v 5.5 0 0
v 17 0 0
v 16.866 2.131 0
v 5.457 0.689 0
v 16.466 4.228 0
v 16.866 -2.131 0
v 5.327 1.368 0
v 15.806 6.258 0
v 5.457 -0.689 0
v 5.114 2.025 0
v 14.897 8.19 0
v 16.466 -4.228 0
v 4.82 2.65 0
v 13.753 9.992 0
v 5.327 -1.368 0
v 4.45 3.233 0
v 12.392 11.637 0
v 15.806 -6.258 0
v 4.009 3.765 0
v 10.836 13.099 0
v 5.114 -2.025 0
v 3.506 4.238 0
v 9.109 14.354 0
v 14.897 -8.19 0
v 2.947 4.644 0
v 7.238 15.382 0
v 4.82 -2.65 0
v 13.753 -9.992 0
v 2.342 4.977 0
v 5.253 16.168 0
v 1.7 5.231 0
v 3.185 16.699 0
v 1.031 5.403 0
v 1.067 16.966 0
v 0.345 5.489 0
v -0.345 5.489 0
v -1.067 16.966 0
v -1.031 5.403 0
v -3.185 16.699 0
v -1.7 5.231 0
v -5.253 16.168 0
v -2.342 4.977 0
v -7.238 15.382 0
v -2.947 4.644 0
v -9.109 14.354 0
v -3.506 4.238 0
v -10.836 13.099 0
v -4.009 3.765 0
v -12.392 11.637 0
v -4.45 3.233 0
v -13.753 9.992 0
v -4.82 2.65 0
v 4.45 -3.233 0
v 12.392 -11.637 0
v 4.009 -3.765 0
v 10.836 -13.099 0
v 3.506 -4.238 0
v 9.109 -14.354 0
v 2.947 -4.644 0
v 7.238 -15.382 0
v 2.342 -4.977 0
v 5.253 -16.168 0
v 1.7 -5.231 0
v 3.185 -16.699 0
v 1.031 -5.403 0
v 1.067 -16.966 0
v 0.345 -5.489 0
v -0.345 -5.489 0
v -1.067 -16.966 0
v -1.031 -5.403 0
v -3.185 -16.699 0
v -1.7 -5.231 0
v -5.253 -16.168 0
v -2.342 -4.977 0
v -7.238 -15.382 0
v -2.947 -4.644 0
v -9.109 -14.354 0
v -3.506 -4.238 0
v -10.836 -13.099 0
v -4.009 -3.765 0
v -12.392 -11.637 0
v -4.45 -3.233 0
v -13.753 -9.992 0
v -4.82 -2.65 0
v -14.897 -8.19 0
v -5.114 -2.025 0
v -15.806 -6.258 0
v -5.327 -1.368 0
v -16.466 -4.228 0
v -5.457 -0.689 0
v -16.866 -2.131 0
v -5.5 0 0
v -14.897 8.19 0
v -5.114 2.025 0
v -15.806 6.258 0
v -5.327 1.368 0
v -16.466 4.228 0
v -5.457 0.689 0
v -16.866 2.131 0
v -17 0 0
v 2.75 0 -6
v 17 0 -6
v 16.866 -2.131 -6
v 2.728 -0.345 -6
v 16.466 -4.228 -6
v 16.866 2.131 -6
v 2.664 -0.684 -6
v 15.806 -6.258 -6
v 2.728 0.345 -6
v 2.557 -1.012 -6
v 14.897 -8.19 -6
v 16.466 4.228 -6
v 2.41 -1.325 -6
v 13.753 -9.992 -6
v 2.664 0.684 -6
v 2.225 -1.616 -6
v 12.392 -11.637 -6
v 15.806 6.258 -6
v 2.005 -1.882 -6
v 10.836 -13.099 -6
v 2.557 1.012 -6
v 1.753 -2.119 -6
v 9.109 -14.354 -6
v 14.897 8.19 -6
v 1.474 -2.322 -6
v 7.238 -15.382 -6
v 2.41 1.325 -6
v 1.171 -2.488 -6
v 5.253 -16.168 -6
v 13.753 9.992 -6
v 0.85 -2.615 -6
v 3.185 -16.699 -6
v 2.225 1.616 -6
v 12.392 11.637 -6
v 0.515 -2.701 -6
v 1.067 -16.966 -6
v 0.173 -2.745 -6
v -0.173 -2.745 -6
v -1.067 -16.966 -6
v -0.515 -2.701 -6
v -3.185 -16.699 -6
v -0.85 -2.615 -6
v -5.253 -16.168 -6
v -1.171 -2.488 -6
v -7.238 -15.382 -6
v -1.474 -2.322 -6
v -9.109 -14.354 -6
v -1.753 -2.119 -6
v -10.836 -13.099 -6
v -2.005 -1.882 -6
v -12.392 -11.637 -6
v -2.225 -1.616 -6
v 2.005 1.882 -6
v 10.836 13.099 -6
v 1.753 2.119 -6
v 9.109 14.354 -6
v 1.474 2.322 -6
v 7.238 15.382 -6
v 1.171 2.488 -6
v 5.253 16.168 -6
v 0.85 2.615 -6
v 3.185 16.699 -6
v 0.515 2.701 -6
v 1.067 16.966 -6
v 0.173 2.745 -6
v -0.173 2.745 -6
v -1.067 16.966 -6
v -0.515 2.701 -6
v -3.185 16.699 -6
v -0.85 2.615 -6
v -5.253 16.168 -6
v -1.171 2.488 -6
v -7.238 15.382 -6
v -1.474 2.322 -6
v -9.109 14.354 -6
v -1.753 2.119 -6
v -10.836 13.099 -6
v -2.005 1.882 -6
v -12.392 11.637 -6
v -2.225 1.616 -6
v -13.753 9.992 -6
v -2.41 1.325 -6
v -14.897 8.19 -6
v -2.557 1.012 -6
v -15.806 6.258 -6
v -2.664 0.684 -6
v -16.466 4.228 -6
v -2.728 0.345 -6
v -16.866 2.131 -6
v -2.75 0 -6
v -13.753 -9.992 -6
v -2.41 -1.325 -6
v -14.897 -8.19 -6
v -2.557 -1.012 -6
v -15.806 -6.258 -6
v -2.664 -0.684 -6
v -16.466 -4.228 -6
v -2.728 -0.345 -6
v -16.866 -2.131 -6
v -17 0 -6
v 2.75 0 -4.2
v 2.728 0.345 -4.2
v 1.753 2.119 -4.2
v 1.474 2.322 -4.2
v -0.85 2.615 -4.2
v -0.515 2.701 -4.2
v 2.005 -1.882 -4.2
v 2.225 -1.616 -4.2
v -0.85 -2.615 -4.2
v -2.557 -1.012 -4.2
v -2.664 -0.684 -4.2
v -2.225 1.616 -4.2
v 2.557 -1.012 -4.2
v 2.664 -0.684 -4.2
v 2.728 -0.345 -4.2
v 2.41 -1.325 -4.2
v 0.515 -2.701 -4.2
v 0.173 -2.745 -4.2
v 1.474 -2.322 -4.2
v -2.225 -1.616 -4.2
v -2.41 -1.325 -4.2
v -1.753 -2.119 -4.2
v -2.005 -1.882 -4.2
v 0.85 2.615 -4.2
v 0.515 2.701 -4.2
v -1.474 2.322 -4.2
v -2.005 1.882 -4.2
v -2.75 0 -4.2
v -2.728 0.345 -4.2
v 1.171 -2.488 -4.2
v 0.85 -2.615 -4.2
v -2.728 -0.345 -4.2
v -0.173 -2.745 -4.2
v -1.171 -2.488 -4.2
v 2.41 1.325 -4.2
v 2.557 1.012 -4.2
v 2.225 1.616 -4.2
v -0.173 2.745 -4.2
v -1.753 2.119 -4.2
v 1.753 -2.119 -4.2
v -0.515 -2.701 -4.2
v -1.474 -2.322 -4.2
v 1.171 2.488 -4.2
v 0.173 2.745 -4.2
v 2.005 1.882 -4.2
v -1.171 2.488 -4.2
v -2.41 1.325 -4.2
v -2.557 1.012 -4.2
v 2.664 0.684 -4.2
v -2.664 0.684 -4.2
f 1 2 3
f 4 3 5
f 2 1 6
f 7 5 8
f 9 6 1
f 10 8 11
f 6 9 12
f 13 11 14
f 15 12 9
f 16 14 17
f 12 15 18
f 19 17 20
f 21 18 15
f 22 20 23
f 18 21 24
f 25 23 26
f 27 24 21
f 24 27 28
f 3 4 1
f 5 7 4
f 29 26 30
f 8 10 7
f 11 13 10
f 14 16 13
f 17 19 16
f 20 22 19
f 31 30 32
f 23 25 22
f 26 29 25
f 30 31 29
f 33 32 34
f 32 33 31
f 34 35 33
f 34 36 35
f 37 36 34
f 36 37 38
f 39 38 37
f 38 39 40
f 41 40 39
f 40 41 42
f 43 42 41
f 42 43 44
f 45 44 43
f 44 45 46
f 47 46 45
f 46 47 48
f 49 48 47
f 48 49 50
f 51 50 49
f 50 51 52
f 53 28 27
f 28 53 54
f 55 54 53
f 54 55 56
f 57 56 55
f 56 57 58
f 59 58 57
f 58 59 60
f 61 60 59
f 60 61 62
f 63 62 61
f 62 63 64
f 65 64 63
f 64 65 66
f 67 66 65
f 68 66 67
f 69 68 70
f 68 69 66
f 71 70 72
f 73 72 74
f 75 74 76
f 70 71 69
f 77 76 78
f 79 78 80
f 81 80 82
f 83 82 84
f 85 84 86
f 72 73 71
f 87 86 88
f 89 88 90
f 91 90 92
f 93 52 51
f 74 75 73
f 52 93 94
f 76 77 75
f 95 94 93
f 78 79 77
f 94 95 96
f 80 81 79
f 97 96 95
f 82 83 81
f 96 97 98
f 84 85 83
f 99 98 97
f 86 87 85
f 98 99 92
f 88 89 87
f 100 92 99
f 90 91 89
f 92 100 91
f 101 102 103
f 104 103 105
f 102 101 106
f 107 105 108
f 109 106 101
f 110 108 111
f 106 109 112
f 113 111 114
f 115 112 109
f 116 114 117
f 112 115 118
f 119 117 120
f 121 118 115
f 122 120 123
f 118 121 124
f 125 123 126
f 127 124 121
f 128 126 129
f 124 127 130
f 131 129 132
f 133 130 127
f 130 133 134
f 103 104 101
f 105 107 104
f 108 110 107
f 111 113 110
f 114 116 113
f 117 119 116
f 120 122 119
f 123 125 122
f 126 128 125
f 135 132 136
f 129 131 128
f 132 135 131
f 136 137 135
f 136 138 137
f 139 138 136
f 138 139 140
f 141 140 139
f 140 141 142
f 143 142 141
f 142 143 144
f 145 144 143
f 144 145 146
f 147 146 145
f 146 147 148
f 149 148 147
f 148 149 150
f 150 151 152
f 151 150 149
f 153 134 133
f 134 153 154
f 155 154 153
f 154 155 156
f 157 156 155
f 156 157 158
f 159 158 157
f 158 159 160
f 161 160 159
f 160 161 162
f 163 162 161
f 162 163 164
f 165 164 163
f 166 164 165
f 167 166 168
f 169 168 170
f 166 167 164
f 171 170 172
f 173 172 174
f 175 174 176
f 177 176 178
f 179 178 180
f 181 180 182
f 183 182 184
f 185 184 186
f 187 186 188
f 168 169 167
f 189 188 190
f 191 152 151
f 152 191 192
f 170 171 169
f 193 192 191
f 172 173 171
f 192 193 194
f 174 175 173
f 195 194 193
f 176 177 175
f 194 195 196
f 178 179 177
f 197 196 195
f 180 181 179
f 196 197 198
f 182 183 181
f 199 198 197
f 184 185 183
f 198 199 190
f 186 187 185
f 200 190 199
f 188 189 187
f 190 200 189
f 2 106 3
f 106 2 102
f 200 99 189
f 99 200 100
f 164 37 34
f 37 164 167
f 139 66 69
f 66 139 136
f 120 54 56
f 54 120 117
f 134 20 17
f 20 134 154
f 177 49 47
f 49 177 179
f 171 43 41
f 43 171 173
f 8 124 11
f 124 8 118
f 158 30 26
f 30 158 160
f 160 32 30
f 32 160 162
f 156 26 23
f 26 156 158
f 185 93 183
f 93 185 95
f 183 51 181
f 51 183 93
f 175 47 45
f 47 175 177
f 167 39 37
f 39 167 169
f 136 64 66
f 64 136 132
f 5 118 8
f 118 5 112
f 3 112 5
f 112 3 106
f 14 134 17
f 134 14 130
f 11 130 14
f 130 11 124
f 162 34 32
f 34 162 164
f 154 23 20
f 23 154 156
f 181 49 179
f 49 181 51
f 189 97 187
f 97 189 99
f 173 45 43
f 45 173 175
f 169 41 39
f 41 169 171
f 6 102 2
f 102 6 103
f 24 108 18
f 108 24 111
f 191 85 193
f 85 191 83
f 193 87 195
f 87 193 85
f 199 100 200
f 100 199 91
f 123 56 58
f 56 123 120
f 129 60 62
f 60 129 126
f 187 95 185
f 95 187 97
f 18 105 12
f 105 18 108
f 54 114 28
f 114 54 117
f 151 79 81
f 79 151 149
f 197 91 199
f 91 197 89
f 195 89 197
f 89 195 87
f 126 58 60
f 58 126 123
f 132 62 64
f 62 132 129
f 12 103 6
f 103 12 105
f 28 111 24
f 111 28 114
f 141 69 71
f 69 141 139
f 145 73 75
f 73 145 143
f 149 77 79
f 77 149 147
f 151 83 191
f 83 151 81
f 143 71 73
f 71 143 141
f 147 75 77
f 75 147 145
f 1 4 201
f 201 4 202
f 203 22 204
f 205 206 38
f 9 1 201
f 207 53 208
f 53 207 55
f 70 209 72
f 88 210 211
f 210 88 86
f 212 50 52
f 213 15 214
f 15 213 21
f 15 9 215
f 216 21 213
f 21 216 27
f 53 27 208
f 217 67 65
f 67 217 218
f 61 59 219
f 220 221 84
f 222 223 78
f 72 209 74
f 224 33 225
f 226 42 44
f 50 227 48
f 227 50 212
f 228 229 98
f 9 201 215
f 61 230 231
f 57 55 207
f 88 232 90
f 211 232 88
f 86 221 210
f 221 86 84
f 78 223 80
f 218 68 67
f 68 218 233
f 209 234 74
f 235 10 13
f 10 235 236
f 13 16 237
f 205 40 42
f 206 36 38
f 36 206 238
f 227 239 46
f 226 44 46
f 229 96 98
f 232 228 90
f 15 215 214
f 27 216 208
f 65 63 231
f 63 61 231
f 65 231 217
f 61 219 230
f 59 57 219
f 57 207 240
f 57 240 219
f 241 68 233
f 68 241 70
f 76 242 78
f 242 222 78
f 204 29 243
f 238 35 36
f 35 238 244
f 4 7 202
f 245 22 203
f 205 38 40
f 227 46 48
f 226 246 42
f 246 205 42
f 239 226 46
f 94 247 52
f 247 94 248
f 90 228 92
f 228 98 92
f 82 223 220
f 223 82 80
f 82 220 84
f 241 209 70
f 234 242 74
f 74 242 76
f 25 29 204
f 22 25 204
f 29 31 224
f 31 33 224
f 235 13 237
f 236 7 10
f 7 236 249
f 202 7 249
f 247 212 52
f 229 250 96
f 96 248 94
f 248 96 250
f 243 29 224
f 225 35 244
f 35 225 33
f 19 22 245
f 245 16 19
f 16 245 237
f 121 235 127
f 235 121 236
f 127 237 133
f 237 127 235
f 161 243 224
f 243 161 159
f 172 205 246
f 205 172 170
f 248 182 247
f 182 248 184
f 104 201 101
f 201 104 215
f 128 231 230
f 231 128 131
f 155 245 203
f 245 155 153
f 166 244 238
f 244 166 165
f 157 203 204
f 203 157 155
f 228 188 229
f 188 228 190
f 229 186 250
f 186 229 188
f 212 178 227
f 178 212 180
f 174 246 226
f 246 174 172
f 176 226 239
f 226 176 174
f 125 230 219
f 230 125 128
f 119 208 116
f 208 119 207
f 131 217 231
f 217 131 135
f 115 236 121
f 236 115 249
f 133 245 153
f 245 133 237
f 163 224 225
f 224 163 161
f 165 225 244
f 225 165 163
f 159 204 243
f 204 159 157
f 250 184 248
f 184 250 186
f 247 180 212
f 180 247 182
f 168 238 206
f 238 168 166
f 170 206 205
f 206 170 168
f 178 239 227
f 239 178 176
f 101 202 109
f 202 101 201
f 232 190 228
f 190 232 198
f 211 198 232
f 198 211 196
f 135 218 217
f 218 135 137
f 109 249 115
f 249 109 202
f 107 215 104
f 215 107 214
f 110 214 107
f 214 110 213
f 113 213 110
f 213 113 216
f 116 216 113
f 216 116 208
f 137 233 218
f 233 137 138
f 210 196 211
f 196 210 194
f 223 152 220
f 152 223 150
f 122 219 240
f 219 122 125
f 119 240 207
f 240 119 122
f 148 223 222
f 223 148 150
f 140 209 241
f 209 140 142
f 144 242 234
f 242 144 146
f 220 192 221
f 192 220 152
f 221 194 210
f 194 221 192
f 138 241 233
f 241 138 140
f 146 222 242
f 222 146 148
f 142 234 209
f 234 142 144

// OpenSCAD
$fn = 50;


difference() {
	union() {
		translate(v = [0, 0, -6.0000000000]) {
			cylinder(h = 6, r = 7.0000000000);
		}
		translate(v = [0, 0, -6.0000000000]) {
			cylinder(h = 6, r = 17.0000000000);
		}
	}
	union() {
		translate(v = [0, 0, 0]) {
			rotate(a = [0, 0, 0]) {
				difference() {
					union() {
						#translate(v = [0, 0, -6.0000000000]) {
							cylinder(h = 6, r = 2.2500000000);
						}
						#translate(v = [0, 0, -4.2000000000]) {
							cylinder(h = 4.2000000000, r1 = 2.7500000000, r2 = 5.5000000000);
						}
						#translate(v = [0, 0, -6.0000000000]) {
							cylinder(h = 6, r = 2.7500000000);
						}
						#translate(v = [0, 0, -6.0000000000]) {
							cylinder(h = 6, r = 2.2500000000);
						}
					}
					union();
				}
			}
		}
	}
}
